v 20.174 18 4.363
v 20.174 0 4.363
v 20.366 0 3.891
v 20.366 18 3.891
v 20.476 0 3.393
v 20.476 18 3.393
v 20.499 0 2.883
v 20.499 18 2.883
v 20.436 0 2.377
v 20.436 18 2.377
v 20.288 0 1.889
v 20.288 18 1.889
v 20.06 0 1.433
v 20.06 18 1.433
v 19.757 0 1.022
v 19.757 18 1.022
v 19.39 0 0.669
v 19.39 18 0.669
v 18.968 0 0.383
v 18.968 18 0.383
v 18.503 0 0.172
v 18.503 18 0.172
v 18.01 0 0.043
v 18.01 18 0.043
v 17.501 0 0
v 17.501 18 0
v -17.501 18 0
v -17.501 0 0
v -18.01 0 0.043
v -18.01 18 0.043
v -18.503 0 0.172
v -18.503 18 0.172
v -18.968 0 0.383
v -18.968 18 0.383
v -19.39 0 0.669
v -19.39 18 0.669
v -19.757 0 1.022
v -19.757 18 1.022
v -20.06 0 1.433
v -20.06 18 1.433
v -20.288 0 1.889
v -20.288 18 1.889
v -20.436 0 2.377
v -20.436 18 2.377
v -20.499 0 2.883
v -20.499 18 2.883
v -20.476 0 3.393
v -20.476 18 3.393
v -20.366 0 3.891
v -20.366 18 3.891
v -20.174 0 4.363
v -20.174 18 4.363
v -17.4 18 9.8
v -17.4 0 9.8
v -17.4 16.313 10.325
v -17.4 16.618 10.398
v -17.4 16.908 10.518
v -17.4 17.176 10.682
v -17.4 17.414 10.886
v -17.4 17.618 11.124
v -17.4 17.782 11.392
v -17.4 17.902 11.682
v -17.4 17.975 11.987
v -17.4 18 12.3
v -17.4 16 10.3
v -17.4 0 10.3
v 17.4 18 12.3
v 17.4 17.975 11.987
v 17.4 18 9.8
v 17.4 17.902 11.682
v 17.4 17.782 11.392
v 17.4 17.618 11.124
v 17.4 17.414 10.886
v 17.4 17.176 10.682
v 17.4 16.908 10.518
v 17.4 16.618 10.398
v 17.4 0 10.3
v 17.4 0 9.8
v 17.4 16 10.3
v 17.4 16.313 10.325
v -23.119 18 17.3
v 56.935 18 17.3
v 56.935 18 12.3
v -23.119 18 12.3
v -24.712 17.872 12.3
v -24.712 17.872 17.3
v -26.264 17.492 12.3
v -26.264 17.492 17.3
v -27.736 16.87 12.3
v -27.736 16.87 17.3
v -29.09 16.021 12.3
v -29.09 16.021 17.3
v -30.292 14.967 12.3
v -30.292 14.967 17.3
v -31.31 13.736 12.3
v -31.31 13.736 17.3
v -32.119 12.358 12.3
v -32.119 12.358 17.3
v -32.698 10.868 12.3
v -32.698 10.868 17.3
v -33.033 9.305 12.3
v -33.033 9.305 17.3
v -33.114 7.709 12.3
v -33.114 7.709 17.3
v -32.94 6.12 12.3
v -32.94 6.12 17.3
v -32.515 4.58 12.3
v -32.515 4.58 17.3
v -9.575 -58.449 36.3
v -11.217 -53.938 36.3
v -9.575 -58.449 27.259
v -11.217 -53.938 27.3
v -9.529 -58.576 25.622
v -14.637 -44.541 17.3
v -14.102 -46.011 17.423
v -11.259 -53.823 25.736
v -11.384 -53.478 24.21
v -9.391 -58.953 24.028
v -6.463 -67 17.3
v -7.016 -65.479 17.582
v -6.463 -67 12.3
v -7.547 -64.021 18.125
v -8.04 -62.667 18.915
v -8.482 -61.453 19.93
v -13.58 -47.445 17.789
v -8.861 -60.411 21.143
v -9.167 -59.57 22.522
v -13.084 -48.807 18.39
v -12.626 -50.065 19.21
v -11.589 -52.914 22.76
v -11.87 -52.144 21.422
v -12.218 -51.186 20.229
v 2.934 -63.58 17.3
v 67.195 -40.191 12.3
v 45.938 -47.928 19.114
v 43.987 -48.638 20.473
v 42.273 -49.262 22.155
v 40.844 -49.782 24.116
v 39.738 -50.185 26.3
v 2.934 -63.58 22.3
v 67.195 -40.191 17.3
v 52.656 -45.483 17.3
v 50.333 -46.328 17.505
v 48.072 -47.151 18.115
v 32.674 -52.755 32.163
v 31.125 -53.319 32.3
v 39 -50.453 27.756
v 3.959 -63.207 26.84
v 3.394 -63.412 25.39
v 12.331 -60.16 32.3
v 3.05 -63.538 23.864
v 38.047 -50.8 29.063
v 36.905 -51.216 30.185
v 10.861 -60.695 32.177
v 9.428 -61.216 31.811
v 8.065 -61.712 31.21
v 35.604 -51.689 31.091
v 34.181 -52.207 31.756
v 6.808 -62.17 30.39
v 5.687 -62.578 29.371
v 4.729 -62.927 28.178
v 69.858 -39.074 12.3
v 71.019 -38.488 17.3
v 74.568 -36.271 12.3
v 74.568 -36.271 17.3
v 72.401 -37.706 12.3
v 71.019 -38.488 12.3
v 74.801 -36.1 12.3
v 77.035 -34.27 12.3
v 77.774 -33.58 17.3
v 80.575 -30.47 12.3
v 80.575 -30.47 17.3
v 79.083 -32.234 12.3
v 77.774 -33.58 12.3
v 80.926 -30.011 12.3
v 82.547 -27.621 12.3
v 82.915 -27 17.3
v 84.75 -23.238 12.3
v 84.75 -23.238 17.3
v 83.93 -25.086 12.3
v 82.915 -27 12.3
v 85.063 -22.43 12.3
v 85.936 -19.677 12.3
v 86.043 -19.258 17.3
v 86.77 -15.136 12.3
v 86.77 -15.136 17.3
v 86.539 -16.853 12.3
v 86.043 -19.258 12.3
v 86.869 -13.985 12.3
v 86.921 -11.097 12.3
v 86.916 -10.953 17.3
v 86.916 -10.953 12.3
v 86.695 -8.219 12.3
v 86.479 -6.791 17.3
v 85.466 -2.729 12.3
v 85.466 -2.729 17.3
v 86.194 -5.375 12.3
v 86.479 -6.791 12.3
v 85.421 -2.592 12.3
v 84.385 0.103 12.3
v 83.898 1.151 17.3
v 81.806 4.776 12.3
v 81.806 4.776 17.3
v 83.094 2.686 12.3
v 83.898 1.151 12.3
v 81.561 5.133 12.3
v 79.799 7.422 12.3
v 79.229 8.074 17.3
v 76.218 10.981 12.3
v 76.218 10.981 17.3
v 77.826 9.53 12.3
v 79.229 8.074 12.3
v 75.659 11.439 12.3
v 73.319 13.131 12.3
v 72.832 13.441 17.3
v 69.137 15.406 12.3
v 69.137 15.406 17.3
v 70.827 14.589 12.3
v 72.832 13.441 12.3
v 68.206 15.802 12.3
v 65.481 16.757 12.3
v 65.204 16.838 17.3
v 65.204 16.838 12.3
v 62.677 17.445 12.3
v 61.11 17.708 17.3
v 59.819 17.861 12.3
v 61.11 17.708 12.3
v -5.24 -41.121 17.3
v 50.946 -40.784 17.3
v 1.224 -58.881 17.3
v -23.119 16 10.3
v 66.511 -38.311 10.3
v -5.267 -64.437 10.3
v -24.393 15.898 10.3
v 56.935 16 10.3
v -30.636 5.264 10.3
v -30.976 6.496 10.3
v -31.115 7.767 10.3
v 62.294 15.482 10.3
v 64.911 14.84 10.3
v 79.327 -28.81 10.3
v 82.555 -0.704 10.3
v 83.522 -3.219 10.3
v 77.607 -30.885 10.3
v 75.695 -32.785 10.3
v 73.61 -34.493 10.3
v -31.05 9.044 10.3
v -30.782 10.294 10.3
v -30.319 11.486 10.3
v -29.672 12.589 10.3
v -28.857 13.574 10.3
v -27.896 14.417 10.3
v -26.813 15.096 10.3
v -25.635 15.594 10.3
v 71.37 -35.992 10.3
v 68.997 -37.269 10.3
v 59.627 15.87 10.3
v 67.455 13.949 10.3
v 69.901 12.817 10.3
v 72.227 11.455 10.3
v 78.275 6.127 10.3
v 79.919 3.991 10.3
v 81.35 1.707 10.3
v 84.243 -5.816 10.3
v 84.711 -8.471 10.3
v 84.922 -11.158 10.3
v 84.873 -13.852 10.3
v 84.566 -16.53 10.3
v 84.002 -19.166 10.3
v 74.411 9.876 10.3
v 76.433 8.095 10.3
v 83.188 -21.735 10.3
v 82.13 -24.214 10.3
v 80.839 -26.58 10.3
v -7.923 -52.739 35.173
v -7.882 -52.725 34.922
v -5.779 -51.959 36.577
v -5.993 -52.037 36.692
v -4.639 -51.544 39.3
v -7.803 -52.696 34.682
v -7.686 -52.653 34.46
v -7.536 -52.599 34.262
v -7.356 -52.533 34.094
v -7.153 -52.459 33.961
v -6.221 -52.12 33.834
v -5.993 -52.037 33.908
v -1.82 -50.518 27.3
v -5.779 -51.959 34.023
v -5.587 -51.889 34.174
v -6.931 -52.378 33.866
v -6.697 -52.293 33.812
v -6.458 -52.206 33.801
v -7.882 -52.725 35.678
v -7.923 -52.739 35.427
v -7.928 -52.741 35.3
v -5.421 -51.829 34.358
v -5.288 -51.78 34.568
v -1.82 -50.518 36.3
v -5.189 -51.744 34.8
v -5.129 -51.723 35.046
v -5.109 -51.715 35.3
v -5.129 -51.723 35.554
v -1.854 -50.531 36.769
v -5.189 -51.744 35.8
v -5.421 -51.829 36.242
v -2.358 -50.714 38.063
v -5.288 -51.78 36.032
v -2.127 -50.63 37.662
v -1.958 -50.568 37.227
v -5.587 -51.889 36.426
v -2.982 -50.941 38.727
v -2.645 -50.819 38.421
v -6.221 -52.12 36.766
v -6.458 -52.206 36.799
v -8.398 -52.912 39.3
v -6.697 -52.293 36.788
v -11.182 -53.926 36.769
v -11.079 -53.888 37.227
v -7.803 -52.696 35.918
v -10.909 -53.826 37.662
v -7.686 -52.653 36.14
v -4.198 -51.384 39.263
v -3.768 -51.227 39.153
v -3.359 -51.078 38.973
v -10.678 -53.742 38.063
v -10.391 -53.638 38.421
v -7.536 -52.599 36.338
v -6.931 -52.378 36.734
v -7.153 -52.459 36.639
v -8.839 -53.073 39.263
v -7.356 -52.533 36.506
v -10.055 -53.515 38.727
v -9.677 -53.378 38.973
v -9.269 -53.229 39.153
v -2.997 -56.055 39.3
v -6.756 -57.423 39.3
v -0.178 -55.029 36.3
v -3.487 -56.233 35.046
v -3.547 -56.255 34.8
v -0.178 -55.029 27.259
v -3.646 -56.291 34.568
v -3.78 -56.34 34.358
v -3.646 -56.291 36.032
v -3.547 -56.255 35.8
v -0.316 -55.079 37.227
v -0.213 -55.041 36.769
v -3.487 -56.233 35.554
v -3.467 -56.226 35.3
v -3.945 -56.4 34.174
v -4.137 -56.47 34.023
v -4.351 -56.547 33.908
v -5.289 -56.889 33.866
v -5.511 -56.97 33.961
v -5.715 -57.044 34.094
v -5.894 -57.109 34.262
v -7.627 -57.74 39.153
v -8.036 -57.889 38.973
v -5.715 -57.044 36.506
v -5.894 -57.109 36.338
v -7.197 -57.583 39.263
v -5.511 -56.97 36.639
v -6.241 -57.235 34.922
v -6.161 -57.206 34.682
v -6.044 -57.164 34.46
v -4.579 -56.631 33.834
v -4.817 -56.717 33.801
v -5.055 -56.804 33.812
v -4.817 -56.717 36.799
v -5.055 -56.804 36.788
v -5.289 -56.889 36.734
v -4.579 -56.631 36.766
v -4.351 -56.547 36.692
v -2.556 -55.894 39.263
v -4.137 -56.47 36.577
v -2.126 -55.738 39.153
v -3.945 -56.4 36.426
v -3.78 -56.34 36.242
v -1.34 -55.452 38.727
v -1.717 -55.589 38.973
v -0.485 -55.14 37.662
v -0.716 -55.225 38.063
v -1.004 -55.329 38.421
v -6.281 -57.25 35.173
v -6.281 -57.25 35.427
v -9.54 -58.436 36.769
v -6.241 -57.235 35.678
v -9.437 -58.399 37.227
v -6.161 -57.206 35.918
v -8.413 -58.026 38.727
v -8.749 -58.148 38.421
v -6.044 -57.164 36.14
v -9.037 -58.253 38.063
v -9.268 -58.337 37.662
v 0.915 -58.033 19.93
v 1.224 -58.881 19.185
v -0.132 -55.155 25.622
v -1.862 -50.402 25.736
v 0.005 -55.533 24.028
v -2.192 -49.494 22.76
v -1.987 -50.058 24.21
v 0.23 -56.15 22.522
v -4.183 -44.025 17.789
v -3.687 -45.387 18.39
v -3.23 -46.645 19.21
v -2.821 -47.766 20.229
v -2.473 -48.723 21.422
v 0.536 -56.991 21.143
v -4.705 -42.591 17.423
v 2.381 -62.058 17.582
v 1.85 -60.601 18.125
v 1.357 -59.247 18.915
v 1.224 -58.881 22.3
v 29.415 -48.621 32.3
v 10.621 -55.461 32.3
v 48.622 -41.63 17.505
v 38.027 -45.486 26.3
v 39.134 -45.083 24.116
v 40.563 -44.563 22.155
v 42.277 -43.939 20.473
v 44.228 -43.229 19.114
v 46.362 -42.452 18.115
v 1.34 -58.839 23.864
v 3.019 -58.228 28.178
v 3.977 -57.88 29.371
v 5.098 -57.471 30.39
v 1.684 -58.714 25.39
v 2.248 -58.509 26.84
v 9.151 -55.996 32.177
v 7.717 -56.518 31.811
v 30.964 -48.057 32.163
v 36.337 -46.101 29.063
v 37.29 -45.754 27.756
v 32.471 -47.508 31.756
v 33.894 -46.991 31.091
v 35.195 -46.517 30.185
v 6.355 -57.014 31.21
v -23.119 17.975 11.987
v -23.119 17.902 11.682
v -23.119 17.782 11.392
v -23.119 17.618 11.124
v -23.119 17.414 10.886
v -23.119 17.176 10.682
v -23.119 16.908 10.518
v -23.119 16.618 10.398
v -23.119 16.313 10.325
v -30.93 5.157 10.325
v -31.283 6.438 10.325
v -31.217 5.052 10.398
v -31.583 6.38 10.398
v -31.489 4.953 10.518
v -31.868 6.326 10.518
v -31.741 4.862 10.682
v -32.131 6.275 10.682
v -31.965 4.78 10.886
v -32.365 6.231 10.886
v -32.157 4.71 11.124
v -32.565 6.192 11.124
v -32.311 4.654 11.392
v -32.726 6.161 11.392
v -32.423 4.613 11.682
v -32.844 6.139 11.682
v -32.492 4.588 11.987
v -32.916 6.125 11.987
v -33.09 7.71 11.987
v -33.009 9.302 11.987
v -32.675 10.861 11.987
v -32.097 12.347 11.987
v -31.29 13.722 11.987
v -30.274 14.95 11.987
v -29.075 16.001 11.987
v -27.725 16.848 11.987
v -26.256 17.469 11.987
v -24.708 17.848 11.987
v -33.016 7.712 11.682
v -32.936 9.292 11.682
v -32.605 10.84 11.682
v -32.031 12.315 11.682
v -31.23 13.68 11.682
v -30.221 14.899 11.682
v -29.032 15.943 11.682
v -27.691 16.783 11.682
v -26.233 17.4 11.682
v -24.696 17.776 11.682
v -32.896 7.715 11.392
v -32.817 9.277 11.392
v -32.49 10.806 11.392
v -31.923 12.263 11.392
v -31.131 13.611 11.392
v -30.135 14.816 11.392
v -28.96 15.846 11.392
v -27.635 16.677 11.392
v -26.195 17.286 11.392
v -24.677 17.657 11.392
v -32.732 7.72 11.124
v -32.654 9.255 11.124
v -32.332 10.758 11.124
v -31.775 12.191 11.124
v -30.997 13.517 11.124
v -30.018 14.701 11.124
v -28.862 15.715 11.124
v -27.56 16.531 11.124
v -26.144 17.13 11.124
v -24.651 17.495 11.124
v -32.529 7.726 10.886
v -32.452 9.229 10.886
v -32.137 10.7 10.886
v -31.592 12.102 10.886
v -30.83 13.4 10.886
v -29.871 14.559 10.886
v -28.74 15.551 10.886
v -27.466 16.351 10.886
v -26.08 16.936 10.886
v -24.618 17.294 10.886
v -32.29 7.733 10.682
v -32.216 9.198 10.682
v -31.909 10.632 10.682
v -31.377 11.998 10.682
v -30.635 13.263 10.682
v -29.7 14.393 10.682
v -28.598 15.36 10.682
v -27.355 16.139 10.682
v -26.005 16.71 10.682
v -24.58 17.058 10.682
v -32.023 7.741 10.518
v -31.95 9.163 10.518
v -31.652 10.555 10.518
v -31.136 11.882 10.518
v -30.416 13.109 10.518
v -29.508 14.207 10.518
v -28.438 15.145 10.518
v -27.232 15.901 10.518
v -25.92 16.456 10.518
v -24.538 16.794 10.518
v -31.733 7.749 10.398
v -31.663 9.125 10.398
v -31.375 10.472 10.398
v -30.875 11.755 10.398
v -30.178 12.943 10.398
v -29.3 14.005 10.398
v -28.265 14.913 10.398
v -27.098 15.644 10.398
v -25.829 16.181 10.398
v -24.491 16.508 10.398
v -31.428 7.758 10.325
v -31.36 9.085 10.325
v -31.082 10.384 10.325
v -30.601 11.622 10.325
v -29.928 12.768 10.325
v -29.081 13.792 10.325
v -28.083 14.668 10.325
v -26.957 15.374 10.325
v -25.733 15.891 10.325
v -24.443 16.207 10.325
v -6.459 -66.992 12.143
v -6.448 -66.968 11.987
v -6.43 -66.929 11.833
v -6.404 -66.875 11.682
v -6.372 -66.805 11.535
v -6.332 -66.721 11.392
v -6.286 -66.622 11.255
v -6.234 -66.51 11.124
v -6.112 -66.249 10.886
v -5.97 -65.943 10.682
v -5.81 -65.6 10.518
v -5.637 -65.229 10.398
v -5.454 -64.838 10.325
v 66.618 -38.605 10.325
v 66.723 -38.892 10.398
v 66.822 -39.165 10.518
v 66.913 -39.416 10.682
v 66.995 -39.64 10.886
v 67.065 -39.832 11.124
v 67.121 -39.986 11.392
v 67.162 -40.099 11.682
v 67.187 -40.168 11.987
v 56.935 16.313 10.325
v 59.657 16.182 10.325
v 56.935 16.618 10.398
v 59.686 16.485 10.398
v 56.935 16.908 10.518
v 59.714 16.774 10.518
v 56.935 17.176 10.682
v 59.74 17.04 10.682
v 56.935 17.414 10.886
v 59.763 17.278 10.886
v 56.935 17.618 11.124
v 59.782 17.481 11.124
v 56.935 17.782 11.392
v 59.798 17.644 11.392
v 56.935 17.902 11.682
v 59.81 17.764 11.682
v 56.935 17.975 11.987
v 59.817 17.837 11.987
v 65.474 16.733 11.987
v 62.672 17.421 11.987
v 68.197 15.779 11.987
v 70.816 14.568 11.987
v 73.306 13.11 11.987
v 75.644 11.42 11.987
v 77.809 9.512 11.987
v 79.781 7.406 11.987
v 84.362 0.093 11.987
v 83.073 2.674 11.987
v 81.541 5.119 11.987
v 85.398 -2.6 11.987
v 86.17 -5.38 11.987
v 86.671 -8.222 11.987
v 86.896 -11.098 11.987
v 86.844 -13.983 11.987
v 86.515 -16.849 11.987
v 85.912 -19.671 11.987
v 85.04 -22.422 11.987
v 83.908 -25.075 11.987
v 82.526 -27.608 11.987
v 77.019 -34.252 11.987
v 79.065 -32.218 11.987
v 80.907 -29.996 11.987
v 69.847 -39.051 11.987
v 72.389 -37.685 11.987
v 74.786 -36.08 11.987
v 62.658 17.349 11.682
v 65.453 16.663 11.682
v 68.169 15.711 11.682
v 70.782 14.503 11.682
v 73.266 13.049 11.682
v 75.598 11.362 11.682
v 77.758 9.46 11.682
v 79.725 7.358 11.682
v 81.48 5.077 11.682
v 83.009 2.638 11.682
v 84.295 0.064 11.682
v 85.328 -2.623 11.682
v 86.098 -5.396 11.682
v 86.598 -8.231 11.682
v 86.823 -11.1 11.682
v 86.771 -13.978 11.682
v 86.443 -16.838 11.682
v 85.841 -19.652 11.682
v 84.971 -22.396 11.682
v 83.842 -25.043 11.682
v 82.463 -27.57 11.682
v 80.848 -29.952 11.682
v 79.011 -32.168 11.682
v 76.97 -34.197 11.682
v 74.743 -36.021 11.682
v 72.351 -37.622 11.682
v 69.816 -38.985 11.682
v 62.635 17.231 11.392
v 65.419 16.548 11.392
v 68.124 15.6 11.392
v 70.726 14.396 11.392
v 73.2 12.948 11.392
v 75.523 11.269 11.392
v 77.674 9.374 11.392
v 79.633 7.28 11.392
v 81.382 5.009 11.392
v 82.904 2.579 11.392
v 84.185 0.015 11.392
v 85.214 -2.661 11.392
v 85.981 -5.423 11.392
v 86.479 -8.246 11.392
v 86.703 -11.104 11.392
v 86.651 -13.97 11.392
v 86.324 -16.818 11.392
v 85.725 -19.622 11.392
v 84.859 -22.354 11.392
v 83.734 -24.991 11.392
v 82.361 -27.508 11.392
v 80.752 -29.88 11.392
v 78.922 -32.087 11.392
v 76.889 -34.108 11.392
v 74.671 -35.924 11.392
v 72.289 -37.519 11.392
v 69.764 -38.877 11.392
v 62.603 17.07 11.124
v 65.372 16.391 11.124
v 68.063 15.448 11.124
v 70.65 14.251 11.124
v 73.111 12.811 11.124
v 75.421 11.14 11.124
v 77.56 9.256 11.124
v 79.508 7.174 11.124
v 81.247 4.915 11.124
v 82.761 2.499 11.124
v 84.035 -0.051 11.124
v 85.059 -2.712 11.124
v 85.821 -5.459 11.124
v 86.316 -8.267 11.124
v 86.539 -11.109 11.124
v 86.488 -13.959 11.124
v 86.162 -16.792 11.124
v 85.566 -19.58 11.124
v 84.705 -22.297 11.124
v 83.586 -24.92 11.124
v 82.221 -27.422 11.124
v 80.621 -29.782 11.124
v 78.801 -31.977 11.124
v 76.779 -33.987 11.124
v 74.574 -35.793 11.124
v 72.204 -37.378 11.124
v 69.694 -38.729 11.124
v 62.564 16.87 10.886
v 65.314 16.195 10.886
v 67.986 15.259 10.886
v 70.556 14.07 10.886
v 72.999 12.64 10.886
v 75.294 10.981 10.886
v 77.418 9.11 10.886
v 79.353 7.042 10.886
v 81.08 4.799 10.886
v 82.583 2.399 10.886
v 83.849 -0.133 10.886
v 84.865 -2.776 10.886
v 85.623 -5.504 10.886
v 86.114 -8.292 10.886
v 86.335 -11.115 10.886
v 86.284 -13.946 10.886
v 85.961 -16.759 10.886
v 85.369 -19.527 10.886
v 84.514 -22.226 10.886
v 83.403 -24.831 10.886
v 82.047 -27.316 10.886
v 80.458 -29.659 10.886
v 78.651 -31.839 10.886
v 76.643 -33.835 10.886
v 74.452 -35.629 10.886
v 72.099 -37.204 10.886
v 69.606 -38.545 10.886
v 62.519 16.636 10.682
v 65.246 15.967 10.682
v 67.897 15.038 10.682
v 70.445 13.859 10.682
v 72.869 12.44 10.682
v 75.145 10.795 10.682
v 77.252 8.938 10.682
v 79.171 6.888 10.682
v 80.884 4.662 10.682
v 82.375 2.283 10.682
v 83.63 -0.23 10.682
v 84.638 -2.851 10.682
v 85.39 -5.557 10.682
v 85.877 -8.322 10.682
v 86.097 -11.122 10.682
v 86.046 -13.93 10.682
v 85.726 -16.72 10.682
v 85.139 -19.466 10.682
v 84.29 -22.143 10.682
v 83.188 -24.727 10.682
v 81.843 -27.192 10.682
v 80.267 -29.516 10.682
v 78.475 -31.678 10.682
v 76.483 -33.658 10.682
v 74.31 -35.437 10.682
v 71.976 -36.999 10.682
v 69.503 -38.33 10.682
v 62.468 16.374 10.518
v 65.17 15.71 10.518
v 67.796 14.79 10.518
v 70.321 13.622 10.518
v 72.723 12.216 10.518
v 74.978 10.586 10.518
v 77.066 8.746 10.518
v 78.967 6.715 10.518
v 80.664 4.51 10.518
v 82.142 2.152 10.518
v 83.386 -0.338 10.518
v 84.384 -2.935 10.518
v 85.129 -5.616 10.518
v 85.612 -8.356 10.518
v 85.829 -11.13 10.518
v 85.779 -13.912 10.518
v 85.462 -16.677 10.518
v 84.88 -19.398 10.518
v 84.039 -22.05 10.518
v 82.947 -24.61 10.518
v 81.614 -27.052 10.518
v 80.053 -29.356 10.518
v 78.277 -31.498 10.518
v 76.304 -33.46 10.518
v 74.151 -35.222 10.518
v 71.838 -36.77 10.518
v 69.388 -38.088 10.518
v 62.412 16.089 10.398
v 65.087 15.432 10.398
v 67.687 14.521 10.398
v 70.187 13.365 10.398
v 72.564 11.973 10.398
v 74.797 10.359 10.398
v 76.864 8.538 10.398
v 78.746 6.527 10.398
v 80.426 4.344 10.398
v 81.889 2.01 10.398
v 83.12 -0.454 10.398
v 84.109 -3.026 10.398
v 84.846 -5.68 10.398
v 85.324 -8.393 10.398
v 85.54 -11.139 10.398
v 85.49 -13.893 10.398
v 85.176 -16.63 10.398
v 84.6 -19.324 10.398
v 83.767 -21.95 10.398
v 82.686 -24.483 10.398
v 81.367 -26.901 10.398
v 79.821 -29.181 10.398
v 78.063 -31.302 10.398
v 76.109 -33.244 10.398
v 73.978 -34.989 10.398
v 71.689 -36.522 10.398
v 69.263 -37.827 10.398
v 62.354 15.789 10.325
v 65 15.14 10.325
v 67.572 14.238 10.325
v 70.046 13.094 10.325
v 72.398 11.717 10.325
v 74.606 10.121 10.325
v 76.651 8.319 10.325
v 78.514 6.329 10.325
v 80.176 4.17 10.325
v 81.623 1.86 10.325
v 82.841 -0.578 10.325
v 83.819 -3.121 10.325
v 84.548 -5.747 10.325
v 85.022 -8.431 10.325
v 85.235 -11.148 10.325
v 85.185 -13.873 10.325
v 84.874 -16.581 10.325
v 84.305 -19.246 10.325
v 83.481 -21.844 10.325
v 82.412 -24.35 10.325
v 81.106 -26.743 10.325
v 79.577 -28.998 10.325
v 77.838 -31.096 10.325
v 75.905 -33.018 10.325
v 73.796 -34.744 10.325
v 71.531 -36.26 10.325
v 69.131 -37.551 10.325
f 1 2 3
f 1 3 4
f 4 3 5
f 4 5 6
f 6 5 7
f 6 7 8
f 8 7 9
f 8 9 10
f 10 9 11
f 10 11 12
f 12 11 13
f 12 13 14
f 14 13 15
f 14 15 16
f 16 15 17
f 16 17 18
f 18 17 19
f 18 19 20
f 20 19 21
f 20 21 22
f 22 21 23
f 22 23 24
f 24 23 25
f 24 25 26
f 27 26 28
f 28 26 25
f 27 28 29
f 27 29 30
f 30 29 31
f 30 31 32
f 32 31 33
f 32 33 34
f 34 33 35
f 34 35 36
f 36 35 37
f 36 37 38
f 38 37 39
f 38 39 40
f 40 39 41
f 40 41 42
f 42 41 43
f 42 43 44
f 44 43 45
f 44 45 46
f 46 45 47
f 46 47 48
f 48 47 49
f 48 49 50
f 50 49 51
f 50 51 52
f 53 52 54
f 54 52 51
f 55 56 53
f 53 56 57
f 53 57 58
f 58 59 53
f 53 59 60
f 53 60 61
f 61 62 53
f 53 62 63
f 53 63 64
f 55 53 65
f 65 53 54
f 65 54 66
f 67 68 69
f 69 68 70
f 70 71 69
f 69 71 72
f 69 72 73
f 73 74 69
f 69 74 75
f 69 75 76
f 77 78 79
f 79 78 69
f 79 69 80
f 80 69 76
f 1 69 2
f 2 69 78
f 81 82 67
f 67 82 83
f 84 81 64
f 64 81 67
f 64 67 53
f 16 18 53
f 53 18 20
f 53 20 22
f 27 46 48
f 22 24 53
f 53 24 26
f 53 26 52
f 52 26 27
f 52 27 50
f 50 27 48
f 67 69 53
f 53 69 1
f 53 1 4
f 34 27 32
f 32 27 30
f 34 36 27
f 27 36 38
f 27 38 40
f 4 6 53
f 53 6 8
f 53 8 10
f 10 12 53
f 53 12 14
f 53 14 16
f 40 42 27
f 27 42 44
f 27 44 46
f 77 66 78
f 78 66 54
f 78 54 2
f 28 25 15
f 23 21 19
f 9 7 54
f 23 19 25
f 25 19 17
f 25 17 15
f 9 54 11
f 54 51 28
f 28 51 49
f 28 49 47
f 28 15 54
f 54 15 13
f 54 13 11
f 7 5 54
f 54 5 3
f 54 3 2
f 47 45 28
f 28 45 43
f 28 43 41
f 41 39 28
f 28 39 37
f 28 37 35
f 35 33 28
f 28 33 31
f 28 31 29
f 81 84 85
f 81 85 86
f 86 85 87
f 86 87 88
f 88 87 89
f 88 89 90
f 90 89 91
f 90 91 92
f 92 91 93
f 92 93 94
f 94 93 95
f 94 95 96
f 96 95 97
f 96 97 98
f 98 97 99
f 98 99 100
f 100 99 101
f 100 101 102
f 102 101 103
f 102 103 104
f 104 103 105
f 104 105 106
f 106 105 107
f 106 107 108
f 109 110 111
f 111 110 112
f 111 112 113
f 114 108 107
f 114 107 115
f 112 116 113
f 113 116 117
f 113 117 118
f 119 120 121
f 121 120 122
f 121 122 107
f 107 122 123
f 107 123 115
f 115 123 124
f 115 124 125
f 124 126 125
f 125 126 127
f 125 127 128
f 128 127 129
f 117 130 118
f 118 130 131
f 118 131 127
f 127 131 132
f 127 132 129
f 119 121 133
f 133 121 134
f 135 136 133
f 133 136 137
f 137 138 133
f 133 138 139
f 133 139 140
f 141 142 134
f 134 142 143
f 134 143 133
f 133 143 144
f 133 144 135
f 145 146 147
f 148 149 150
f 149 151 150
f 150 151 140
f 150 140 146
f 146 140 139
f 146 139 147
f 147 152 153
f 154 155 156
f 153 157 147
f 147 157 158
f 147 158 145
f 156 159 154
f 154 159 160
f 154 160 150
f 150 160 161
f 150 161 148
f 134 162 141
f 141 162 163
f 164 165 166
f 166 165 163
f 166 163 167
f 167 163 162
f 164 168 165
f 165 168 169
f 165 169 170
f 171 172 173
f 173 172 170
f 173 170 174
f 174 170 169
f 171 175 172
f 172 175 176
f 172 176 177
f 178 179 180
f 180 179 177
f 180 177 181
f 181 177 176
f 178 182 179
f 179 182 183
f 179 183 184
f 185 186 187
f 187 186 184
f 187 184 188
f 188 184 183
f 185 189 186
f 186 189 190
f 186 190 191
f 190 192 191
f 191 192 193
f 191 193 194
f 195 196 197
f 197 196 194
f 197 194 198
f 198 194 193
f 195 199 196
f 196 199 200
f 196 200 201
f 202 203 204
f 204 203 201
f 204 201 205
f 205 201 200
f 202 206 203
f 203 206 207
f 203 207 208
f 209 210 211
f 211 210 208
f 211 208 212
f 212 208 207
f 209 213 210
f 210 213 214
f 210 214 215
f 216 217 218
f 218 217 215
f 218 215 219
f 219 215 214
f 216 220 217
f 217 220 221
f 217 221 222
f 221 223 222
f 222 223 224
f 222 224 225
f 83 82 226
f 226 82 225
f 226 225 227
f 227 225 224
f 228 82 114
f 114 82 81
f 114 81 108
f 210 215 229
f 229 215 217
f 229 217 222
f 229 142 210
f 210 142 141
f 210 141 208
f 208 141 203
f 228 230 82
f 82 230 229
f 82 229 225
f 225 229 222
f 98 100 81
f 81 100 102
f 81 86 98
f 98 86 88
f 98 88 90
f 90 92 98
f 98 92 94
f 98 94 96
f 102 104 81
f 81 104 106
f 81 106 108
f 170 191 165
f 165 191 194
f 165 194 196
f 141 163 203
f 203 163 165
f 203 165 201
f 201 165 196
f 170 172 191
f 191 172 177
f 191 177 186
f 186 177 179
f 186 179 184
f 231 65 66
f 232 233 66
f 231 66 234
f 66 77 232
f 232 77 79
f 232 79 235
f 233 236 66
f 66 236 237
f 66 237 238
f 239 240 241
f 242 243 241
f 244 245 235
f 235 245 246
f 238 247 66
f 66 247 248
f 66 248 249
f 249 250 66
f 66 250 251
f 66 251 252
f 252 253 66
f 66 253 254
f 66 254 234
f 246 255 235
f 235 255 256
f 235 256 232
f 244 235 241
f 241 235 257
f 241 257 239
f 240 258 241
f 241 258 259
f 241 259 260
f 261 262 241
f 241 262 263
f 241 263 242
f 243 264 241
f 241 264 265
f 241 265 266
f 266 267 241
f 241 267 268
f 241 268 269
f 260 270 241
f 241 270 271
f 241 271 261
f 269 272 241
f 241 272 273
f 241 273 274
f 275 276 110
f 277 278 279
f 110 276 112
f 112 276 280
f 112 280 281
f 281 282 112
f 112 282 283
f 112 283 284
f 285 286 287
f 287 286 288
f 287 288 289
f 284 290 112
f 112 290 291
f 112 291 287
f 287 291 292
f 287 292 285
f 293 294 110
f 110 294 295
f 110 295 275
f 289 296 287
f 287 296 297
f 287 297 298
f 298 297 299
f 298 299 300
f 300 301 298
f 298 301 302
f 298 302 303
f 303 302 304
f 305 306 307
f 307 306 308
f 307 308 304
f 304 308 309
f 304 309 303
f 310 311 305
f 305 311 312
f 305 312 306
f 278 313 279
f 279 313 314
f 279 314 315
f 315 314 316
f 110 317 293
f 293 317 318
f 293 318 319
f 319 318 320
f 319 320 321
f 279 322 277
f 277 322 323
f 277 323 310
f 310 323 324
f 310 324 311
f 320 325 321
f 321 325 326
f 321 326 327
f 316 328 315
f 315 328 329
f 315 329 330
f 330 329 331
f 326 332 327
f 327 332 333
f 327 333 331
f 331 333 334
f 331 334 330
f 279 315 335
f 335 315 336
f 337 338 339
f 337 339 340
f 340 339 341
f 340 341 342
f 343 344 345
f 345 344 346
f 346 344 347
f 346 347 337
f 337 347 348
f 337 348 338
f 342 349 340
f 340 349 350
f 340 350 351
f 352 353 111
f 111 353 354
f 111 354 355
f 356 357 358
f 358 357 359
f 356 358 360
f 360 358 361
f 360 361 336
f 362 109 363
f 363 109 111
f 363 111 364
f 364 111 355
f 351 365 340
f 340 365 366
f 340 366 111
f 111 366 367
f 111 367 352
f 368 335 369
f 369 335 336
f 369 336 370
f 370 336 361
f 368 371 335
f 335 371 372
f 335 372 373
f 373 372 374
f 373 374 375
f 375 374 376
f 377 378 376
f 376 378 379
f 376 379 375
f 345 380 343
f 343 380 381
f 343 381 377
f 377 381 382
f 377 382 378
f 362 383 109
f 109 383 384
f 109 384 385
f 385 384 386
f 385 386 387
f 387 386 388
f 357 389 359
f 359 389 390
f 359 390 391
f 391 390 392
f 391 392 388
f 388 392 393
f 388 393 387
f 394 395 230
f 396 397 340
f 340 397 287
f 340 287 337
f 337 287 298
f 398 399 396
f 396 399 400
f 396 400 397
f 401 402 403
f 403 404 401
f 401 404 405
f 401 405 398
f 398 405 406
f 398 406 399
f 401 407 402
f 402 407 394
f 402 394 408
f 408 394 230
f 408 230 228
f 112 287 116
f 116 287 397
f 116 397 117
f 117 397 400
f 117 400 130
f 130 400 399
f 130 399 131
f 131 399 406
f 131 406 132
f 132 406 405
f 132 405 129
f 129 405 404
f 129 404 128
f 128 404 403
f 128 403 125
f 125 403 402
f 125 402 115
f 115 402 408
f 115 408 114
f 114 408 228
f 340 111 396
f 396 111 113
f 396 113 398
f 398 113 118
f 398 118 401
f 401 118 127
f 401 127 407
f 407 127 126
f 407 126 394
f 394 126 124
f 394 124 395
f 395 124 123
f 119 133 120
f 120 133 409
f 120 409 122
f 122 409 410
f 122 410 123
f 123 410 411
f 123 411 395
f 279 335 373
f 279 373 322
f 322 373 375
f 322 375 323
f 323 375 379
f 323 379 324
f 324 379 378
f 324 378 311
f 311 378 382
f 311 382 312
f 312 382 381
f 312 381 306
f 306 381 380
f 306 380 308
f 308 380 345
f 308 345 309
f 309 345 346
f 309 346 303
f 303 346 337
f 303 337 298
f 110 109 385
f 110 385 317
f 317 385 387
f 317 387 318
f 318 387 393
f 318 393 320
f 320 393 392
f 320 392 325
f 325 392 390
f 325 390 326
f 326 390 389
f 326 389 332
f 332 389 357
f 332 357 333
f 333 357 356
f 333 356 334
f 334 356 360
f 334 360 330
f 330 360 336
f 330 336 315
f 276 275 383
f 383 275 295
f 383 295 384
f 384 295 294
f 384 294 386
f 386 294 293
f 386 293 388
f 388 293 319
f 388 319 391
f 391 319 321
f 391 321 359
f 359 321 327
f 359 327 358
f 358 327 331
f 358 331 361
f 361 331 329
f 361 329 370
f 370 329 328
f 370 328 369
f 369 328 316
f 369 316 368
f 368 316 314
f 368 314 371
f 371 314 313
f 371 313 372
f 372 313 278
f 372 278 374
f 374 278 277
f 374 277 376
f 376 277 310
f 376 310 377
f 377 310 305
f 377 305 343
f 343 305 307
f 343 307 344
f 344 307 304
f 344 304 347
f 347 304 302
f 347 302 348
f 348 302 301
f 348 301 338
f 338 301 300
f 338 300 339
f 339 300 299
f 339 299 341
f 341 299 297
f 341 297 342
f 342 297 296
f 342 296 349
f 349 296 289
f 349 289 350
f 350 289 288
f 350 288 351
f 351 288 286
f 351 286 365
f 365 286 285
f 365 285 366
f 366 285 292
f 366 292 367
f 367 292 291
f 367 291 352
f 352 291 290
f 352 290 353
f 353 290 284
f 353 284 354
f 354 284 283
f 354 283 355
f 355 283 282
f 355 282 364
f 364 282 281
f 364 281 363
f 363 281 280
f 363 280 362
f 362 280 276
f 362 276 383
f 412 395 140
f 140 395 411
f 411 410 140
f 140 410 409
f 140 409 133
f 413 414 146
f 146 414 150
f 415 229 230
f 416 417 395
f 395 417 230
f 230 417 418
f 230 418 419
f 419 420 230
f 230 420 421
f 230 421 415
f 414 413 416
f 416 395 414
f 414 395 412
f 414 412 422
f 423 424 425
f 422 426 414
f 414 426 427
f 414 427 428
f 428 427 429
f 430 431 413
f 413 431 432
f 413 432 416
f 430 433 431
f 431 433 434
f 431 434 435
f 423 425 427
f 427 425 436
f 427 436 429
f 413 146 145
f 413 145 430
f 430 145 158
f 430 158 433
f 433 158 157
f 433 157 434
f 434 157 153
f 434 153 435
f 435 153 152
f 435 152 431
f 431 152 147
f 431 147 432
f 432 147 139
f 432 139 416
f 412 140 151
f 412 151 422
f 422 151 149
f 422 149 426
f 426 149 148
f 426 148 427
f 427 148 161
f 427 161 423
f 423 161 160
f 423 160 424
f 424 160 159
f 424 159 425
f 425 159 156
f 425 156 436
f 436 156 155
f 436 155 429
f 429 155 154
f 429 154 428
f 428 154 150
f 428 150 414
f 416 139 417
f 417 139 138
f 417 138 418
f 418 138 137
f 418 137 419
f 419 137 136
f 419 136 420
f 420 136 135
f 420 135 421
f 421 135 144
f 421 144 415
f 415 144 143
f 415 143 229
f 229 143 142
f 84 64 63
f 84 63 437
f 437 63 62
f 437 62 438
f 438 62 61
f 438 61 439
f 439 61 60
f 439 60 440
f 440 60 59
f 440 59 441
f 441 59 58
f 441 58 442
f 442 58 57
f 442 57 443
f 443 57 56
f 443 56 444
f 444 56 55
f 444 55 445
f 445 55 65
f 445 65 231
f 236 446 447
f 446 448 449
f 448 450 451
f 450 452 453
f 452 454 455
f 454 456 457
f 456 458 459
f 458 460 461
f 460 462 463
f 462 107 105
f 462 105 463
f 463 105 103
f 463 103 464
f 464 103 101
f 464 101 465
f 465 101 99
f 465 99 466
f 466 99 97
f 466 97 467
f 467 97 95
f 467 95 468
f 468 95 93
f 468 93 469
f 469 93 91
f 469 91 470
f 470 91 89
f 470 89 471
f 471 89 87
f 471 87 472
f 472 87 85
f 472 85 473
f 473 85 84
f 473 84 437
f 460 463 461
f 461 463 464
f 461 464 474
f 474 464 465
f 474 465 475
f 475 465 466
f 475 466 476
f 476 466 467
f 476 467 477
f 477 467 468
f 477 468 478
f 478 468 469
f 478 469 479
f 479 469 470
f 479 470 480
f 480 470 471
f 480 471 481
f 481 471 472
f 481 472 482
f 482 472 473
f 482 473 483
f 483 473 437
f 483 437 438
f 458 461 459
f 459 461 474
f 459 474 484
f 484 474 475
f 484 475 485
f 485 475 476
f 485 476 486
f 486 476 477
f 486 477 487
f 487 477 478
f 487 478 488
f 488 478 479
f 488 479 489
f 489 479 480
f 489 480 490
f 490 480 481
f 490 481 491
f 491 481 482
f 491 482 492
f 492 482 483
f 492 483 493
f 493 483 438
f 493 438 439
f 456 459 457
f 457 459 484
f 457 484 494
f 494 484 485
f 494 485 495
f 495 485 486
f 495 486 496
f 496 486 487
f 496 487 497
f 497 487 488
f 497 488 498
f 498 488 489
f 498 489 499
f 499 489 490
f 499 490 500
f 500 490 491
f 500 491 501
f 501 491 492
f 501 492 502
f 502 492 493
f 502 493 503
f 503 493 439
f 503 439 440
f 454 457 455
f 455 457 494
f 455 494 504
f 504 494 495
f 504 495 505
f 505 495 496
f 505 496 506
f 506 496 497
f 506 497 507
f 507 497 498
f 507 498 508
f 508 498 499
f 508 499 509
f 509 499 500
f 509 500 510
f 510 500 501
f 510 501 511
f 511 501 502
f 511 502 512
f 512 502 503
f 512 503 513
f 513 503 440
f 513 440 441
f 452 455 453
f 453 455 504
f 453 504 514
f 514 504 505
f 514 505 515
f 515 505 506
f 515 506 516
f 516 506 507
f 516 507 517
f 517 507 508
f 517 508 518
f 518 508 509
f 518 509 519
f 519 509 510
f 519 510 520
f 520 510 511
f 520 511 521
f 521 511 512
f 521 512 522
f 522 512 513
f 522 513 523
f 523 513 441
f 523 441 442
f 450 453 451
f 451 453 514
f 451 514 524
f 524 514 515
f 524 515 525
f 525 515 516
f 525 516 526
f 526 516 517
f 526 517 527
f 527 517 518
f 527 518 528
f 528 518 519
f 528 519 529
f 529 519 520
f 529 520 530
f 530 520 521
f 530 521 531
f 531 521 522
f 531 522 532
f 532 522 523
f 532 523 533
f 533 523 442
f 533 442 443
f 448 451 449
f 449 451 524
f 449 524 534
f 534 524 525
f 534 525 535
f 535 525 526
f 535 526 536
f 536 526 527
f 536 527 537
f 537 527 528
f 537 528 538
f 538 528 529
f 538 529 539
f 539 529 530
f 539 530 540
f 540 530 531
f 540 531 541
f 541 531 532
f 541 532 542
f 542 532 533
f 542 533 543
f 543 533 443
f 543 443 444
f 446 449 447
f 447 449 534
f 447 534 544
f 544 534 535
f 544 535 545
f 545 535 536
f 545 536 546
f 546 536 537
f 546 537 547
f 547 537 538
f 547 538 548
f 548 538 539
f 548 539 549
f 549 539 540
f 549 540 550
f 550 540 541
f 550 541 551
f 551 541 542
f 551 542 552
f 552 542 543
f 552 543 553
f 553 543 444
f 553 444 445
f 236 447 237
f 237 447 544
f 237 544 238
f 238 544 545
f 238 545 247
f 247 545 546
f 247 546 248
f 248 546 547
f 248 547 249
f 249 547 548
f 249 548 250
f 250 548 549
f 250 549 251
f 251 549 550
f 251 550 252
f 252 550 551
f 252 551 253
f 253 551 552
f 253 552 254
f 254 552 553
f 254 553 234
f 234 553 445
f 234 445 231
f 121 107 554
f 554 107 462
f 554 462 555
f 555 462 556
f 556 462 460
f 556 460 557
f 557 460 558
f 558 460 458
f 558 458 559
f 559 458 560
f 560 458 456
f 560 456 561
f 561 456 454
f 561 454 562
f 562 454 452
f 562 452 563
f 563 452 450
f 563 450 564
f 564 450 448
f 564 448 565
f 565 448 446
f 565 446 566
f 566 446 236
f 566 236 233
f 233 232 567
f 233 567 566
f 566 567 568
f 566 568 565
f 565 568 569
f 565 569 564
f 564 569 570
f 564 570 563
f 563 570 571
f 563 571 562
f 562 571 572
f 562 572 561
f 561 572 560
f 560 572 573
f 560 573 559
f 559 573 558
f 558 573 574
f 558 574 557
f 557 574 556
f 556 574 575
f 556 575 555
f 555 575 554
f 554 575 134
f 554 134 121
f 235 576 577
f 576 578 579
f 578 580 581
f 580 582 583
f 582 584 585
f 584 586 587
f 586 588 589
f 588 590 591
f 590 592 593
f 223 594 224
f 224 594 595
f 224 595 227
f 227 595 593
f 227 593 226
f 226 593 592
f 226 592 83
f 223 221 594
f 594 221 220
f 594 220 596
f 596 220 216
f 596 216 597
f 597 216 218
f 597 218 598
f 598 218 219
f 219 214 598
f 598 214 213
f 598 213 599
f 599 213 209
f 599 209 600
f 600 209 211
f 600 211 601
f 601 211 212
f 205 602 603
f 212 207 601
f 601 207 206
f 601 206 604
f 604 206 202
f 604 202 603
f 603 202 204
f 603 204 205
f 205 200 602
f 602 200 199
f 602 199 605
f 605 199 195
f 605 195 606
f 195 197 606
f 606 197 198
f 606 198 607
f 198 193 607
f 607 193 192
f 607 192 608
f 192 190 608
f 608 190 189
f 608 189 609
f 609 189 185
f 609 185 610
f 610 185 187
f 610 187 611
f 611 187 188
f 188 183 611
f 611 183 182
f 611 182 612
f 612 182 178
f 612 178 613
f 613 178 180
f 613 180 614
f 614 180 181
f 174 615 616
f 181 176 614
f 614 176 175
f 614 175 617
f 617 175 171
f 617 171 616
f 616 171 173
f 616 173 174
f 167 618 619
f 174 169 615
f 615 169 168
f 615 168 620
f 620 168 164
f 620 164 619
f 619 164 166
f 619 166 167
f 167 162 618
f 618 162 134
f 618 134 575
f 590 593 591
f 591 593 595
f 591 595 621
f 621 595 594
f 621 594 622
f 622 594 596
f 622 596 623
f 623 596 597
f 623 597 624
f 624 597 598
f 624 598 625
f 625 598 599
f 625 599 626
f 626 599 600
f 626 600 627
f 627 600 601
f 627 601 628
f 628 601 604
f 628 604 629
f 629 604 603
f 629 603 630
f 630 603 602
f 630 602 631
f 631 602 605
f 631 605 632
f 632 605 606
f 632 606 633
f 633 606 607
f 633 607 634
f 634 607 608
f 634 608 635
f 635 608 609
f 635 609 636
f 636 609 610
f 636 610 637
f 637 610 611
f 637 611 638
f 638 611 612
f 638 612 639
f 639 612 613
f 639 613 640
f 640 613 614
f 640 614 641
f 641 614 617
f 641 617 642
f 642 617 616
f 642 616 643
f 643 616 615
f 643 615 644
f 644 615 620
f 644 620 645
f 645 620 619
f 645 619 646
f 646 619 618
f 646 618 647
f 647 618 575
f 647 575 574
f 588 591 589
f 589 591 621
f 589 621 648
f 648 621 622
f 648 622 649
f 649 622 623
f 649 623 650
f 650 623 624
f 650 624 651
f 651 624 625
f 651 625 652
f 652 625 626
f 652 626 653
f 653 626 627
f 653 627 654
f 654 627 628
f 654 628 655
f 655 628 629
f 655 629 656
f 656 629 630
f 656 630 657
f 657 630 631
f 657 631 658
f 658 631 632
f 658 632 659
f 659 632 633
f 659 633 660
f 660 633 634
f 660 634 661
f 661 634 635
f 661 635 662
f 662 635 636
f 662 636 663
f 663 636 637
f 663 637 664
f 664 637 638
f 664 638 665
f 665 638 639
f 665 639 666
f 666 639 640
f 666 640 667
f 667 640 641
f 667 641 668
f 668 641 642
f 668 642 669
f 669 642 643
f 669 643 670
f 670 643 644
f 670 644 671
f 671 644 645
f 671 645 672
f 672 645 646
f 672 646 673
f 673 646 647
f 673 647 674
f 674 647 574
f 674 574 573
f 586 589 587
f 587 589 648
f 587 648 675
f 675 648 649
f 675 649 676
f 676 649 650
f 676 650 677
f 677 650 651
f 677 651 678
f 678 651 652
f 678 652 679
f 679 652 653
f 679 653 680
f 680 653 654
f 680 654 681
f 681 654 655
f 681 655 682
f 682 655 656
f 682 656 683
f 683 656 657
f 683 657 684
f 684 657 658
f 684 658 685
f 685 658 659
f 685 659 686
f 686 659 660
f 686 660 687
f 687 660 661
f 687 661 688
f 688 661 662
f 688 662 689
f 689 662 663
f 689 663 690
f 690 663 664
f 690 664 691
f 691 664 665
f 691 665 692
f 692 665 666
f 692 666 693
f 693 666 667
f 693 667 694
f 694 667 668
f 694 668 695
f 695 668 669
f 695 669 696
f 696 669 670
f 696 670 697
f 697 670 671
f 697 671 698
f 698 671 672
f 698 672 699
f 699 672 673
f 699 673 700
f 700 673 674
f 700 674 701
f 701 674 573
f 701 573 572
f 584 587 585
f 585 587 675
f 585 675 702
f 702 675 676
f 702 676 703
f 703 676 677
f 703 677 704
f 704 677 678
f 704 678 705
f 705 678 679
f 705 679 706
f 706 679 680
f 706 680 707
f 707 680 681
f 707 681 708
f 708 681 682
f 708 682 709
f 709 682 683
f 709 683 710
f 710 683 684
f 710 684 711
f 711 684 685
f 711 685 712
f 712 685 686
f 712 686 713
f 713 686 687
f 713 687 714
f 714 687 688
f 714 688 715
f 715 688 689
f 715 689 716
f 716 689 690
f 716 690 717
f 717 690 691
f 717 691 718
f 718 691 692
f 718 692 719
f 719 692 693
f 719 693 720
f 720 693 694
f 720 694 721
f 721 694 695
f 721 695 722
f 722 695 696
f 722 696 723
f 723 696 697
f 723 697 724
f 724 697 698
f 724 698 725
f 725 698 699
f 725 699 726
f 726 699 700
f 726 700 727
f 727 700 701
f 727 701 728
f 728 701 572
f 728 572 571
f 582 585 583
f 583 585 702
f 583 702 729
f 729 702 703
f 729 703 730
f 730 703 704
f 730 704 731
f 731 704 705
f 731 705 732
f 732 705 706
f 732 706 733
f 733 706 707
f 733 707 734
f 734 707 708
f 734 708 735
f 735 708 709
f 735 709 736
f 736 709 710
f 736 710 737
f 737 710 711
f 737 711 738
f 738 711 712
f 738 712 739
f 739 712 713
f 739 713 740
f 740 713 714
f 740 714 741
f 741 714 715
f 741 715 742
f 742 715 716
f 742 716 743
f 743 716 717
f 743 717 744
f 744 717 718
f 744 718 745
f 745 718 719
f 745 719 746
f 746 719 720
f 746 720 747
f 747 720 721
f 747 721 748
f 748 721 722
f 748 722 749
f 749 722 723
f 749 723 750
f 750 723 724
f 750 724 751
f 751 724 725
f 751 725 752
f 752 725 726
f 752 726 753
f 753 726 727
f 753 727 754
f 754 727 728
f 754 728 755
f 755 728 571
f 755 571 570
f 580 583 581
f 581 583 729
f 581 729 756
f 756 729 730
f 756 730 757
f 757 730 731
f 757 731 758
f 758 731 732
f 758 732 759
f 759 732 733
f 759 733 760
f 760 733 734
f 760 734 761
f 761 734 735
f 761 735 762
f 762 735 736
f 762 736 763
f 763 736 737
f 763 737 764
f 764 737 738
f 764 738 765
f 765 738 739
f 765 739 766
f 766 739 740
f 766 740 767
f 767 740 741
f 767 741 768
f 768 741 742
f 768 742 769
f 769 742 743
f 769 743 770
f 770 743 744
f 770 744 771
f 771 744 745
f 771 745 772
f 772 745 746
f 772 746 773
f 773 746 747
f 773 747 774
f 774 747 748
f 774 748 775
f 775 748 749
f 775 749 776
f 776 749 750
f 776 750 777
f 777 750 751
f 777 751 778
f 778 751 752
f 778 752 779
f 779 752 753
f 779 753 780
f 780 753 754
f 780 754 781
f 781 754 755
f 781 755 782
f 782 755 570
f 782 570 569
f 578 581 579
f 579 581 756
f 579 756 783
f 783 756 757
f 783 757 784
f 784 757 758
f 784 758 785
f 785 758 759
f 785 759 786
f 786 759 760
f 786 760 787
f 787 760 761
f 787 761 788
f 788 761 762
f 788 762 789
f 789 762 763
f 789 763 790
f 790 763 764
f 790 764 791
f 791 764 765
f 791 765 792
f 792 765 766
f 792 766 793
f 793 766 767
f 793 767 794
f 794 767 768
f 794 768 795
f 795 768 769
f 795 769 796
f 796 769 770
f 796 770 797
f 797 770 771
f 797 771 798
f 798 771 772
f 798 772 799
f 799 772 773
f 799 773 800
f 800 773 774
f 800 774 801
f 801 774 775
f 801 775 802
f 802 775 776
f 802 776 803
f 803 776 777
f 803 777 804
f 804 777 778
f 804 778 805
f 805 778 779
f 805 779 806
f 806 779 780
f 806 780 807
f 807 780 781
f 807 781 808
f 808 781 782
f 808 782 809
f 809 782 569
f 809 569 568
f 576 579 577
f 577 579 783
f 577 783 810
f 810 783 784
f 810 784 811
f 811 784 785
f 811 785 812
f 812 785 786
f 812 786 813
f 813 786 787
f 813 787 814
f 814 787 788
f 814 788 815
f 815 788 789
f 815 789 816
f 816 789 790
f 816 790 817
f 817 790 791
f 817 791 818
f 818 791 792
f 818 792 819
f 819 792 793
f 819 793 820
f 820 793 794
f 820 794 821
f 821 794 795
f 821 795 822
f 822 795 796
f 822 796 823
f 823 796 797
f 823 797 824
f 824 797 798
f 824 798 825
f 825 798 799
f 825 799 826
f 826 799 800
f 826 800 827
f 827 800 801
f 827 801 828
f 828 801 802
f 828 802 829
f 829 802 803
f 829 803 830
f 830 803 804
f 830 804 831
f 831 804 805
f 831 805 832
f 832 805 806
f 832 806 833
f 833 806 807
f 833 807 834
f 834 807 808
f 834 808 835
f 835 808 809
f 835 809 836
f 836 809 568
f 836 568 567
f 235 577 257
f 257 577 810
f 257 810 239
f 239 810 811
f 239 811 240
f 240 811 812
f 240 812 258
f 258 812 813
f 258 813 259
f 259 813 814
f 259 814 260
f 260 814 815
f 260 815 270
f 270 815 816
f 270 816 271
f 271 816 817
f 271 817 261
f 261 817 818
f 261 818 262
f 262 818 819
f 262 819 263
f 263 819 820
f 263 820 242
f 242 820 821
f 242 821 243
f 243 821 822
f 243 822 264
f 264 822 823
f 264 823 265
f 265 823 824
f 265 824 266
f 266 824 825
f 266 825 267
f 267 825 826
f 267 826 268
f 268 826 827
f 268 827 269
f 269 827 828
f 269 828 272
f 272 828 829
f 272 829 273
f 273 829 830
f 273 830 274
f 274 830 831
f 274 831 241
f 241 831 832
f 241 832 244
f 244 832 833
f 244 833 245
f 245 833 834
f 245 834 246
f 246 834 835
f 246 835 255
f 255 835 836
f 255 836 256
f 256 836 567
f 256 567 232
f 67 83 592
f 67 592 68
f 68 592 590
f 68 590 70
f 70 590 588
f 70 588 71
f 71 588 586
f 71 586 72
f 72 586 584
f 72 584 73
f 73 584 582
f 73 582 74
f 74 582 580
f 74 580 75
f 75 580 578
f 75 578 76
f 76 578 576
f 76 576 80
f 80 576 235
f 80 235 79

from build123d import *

# Parameters (mm, degrees)
SALIENTE_EXTRUIR1_DEPTH = 18
SALIENTE_EXTRUIR2_DEPTH = 7
CROQUIS4_W              = 22
CROQUIS4_H              = 4.8
SALIENTE_EXTRUIR3_DEPTH = 10
REDONDEO1_R             = 10
REDONDEO2_R             = 3
CROQUIS5_R              = 1.5
CORTAR_EXTRUIR1_DEPTH   = 104.776547512
CROQUIS6_W              = 40
CROQUIS6_H              = 15
SALIENTE_EXTRUIR4_DEPTH = 5
REDONDEO3_R             = 10
REDONDEO4_R             = 15
REDONDEO5_R             = 2


with BuildPart() as part:
    # Croquis1 → Saliente-Extruir1 (new body)
    with BuildSketch(Plane(origin=(0, 0, 0), x_dir=(1, 0, 0), z_dir=(0, 1, 0))):
        with BuildLine():
            Line((-20.173769885, -4.363411025), (-17.4, -9.8))
            Line((-17.4, -9.8), (-17.4, -10.3))
            Line((-17.4, -10.3), (17.4, -10.3))
            Line((17.4, -10.3), (17.4, -9.8))
            Line((17.4, -9.8), (20.173769885, -4.363411025))
            ThreePointArc((20.173769885, -4.363411025), (20.059826813, -1.433193227), (17.501484276, 0))
            Line((17.501484276, 0), (-17.501484276, 0))
            ThreePointArc((-17.501484276, 0), (-20.059826813, -1.433193227), (-20.173769885, -4.363411025))
        make_face()
    extrude(amount=SALIENTE_EXTRUIR1_DEPTH)

    # Croquis2 → Saliente-Extruir2 (add)
    with BuildSketch(Plane.XY.offset(10.3)):
        with BuildLine():
            Line((-17.4, 18), (-23.118519933, 18))
            ThreePointArc((-23.118519933, 18), (-31.310040375, 13.735764364), (-32.51544614, 4.579798567))
            Line((-32.51544614, 4.579798567), (-6.462530087, -67))
            Line((-6.462530087, -67), (67.195200278, -40.190778624))
            ThreePointArc((67.195200278, -40.190778624), (86.478828568, -6.79055467), (56.934595978, 18))
            Line((56.934595978, 18), (-17.4, 18))
        make_face()
    extrude(amount=SALIENTE_EXTRUIR2_DEPTH)

    # Croquis4 → Saliente-Extruir3 (add)
    with BuildSketch(Plane(origin=(-27.239942599, -9.914528289, 0), x_dir=(0, 0, 1), z_dir=(-0.939692620785908, -0.3420201433256697, 0))):
        with Locations((28.3, -49.249090126)):
            Rectangle(CROQUIS4_W, CROQUIS4_H)
    extrude(amount=-SALIENTE_EXTRUIR3_DEPTH)

    # Redondeo1
    # the kernel refuses this fillet: 10 mm, written as the material it adds along each edge
    with BuildSketch(Plane(origin=(-9.574913392, -58.448797151, 17.3), x_dir=(0.3420201433256697, -0.939692620785908, -1.1712242897144546e-15), z_dir=(0.9396926207859081, 0.34202014332566977, 0))) as redondeo1_piece_1:
        with BuildLine():
            CenterArc((10, -9.959417654), REDONDEO1_R, 95.163607091, 84.836392909)
            Line((0, -9.959417654), (-0.2, -9.959417654))
            Line((-0.2, -9.959417654), (-0.2, 0))
            Line((-0.2, 0), (0, 0.2))
            ThreePointArc((0, 0.2), (4.55, 0.2), (9.082, 0.199188353))
            Line((9.082, 0.199188353), (9.1, 0))
        make_face()
    extrude(amount=10)
    with BuildSketch(Plane(origin=(-11.21661008, -53.938272571, 17.3), x_dir=(-0.3420201433256697, 0.939692620785908, 0), z_dir=(0.9396926207859081, 0.34202014332566977, 0))) as redondeo1_piece_2:
        with BuildLine():
            CenterArc((REDONDEO1_R, REDONDEO1_R), REDONDEO1_R, 180, 90)
            Line((0, REDONDEO1_R), (-REDONDEO1_R * 0.02, REDONDEO1_R))
            Line((-REDONDEO1_R * 0.02, REDONDEO1_R), (-REDONDEO1_R * 0.02, -REDONDEO1_R * 0.02))
            Line((-REDONDEO1_R * 0.02, -REDONDEO1_R * 0.02), (REDONDEO1_R, -REDONDEO1_R * 0.02))
            Line((REDONDEO1_R, -REDONDEO1_R * 0.02), (REDONDEO1_R, 0))
        make_face()
    extrude(amount=10)

    # Redondeo2
    redondeo2_edges = [part.edges().sort_by_distance(p)[0] for p in [
        (-0.998835528, -52.773333428, 39.3),
        (-10.395761736, -56.193534861, 39.3),
    ]]
    fillet(redondeo2_edges, radius=REDONDEO2_R)

    # Croquis5 → Cortar-Extruir1 (cut, through all)
    with BuildSketch(Plane(origin=(17.665029208, -48.534268862, 0), x_dir=(0.9396926207859081, 0.34202014332566977, 0), z_dir=(0.3420201433256697, -0.939692620785908, 0))):
        with Locations((-23.988141438, 35.3)):
            Circle(CROQUIS5_R)
    extrude(amount=-CORTAR_EXTRUIR1_DEPTH, mode=Mode.SUBTRACT)

    # Croquis6 → Saliente-Extruir4 (add)
    with BuildSketch(Plane(origin=(20.777412512, -57.085471711, 0), x_dir=(0.9396926207859081, 0.3420201433256697, 0), z_dir=(0.34202014332566966, -0.939692620785908, 0))):
        with Locations((1.011858562, 24.8)):
            Rectangle(CROQUIS6_W, CROQUIS6_H)
    extrude(amount=-SALIENTE_EXTRUIR4_DEPTH)

    # Redondeo3
    redondeo3_edges = [part.edges().sort_by_distance(p)[0] for p in [
        (2.079345762, -61.230567015, 32.3),
        (39.667050594, -47.549761282, 32.3),
    ]]
    fillet(redondeo3_edges, radius=REDONDEO3_R)

    # Redondeo4
    # the kernel refuses this fillet: 15 mm, written as the material it adds along each edge
    with BuildSketch(Plane(origin=(40.522100952, -49.898992834, 17.3), x_dir=(-0.08679417196563514, -0.03159049510327337, 0.9957252695055648), z_dir=(-0.3420201433256697, 0.9396926207859082, 0))) as redondeo4_piece_1:
        with BuildLine():
            CenterArc((13.743188401, 14.243145828), REDONDEO4_R, 185.299645608, 66.421821522)
            Line((-1.192690642, 12.857679399), (-2.686278546, 12.719132757))
            Line((-2.686278546, 12.719132757), (-1.493587904, -0.138546643))
            Line((-1.493587904, -0.138546643), (0.138546643, -1.493587904))
            ThreePointArc((0.138546643, -1.493587904), (5.11717299, -1.031765761), (8.568182674, -1.424314583))
            Line((8.568182674, -1.424314583), (9.03863774, 0))
        make_face()
    extrude(amount=5)

    # Redondeo5
    redondeo5_edges = [part.edges().sort_by_distance(p)[0] for p in [
        (37.167297989, 18, 10.3),
        (-20.259259966, 18, 10.3),
        (-31.310040375, 13.735764364, 10.3),
        (-19.488988114, -31.210100717, 10.3),
        (30.366335095, -53.595389312, 10.3),
        (86.478828568, -6.79055467, 10.3),
    ]]
    fillet(redondeo5_edges, radius=REDONDEO5_R)


solid = part.part
